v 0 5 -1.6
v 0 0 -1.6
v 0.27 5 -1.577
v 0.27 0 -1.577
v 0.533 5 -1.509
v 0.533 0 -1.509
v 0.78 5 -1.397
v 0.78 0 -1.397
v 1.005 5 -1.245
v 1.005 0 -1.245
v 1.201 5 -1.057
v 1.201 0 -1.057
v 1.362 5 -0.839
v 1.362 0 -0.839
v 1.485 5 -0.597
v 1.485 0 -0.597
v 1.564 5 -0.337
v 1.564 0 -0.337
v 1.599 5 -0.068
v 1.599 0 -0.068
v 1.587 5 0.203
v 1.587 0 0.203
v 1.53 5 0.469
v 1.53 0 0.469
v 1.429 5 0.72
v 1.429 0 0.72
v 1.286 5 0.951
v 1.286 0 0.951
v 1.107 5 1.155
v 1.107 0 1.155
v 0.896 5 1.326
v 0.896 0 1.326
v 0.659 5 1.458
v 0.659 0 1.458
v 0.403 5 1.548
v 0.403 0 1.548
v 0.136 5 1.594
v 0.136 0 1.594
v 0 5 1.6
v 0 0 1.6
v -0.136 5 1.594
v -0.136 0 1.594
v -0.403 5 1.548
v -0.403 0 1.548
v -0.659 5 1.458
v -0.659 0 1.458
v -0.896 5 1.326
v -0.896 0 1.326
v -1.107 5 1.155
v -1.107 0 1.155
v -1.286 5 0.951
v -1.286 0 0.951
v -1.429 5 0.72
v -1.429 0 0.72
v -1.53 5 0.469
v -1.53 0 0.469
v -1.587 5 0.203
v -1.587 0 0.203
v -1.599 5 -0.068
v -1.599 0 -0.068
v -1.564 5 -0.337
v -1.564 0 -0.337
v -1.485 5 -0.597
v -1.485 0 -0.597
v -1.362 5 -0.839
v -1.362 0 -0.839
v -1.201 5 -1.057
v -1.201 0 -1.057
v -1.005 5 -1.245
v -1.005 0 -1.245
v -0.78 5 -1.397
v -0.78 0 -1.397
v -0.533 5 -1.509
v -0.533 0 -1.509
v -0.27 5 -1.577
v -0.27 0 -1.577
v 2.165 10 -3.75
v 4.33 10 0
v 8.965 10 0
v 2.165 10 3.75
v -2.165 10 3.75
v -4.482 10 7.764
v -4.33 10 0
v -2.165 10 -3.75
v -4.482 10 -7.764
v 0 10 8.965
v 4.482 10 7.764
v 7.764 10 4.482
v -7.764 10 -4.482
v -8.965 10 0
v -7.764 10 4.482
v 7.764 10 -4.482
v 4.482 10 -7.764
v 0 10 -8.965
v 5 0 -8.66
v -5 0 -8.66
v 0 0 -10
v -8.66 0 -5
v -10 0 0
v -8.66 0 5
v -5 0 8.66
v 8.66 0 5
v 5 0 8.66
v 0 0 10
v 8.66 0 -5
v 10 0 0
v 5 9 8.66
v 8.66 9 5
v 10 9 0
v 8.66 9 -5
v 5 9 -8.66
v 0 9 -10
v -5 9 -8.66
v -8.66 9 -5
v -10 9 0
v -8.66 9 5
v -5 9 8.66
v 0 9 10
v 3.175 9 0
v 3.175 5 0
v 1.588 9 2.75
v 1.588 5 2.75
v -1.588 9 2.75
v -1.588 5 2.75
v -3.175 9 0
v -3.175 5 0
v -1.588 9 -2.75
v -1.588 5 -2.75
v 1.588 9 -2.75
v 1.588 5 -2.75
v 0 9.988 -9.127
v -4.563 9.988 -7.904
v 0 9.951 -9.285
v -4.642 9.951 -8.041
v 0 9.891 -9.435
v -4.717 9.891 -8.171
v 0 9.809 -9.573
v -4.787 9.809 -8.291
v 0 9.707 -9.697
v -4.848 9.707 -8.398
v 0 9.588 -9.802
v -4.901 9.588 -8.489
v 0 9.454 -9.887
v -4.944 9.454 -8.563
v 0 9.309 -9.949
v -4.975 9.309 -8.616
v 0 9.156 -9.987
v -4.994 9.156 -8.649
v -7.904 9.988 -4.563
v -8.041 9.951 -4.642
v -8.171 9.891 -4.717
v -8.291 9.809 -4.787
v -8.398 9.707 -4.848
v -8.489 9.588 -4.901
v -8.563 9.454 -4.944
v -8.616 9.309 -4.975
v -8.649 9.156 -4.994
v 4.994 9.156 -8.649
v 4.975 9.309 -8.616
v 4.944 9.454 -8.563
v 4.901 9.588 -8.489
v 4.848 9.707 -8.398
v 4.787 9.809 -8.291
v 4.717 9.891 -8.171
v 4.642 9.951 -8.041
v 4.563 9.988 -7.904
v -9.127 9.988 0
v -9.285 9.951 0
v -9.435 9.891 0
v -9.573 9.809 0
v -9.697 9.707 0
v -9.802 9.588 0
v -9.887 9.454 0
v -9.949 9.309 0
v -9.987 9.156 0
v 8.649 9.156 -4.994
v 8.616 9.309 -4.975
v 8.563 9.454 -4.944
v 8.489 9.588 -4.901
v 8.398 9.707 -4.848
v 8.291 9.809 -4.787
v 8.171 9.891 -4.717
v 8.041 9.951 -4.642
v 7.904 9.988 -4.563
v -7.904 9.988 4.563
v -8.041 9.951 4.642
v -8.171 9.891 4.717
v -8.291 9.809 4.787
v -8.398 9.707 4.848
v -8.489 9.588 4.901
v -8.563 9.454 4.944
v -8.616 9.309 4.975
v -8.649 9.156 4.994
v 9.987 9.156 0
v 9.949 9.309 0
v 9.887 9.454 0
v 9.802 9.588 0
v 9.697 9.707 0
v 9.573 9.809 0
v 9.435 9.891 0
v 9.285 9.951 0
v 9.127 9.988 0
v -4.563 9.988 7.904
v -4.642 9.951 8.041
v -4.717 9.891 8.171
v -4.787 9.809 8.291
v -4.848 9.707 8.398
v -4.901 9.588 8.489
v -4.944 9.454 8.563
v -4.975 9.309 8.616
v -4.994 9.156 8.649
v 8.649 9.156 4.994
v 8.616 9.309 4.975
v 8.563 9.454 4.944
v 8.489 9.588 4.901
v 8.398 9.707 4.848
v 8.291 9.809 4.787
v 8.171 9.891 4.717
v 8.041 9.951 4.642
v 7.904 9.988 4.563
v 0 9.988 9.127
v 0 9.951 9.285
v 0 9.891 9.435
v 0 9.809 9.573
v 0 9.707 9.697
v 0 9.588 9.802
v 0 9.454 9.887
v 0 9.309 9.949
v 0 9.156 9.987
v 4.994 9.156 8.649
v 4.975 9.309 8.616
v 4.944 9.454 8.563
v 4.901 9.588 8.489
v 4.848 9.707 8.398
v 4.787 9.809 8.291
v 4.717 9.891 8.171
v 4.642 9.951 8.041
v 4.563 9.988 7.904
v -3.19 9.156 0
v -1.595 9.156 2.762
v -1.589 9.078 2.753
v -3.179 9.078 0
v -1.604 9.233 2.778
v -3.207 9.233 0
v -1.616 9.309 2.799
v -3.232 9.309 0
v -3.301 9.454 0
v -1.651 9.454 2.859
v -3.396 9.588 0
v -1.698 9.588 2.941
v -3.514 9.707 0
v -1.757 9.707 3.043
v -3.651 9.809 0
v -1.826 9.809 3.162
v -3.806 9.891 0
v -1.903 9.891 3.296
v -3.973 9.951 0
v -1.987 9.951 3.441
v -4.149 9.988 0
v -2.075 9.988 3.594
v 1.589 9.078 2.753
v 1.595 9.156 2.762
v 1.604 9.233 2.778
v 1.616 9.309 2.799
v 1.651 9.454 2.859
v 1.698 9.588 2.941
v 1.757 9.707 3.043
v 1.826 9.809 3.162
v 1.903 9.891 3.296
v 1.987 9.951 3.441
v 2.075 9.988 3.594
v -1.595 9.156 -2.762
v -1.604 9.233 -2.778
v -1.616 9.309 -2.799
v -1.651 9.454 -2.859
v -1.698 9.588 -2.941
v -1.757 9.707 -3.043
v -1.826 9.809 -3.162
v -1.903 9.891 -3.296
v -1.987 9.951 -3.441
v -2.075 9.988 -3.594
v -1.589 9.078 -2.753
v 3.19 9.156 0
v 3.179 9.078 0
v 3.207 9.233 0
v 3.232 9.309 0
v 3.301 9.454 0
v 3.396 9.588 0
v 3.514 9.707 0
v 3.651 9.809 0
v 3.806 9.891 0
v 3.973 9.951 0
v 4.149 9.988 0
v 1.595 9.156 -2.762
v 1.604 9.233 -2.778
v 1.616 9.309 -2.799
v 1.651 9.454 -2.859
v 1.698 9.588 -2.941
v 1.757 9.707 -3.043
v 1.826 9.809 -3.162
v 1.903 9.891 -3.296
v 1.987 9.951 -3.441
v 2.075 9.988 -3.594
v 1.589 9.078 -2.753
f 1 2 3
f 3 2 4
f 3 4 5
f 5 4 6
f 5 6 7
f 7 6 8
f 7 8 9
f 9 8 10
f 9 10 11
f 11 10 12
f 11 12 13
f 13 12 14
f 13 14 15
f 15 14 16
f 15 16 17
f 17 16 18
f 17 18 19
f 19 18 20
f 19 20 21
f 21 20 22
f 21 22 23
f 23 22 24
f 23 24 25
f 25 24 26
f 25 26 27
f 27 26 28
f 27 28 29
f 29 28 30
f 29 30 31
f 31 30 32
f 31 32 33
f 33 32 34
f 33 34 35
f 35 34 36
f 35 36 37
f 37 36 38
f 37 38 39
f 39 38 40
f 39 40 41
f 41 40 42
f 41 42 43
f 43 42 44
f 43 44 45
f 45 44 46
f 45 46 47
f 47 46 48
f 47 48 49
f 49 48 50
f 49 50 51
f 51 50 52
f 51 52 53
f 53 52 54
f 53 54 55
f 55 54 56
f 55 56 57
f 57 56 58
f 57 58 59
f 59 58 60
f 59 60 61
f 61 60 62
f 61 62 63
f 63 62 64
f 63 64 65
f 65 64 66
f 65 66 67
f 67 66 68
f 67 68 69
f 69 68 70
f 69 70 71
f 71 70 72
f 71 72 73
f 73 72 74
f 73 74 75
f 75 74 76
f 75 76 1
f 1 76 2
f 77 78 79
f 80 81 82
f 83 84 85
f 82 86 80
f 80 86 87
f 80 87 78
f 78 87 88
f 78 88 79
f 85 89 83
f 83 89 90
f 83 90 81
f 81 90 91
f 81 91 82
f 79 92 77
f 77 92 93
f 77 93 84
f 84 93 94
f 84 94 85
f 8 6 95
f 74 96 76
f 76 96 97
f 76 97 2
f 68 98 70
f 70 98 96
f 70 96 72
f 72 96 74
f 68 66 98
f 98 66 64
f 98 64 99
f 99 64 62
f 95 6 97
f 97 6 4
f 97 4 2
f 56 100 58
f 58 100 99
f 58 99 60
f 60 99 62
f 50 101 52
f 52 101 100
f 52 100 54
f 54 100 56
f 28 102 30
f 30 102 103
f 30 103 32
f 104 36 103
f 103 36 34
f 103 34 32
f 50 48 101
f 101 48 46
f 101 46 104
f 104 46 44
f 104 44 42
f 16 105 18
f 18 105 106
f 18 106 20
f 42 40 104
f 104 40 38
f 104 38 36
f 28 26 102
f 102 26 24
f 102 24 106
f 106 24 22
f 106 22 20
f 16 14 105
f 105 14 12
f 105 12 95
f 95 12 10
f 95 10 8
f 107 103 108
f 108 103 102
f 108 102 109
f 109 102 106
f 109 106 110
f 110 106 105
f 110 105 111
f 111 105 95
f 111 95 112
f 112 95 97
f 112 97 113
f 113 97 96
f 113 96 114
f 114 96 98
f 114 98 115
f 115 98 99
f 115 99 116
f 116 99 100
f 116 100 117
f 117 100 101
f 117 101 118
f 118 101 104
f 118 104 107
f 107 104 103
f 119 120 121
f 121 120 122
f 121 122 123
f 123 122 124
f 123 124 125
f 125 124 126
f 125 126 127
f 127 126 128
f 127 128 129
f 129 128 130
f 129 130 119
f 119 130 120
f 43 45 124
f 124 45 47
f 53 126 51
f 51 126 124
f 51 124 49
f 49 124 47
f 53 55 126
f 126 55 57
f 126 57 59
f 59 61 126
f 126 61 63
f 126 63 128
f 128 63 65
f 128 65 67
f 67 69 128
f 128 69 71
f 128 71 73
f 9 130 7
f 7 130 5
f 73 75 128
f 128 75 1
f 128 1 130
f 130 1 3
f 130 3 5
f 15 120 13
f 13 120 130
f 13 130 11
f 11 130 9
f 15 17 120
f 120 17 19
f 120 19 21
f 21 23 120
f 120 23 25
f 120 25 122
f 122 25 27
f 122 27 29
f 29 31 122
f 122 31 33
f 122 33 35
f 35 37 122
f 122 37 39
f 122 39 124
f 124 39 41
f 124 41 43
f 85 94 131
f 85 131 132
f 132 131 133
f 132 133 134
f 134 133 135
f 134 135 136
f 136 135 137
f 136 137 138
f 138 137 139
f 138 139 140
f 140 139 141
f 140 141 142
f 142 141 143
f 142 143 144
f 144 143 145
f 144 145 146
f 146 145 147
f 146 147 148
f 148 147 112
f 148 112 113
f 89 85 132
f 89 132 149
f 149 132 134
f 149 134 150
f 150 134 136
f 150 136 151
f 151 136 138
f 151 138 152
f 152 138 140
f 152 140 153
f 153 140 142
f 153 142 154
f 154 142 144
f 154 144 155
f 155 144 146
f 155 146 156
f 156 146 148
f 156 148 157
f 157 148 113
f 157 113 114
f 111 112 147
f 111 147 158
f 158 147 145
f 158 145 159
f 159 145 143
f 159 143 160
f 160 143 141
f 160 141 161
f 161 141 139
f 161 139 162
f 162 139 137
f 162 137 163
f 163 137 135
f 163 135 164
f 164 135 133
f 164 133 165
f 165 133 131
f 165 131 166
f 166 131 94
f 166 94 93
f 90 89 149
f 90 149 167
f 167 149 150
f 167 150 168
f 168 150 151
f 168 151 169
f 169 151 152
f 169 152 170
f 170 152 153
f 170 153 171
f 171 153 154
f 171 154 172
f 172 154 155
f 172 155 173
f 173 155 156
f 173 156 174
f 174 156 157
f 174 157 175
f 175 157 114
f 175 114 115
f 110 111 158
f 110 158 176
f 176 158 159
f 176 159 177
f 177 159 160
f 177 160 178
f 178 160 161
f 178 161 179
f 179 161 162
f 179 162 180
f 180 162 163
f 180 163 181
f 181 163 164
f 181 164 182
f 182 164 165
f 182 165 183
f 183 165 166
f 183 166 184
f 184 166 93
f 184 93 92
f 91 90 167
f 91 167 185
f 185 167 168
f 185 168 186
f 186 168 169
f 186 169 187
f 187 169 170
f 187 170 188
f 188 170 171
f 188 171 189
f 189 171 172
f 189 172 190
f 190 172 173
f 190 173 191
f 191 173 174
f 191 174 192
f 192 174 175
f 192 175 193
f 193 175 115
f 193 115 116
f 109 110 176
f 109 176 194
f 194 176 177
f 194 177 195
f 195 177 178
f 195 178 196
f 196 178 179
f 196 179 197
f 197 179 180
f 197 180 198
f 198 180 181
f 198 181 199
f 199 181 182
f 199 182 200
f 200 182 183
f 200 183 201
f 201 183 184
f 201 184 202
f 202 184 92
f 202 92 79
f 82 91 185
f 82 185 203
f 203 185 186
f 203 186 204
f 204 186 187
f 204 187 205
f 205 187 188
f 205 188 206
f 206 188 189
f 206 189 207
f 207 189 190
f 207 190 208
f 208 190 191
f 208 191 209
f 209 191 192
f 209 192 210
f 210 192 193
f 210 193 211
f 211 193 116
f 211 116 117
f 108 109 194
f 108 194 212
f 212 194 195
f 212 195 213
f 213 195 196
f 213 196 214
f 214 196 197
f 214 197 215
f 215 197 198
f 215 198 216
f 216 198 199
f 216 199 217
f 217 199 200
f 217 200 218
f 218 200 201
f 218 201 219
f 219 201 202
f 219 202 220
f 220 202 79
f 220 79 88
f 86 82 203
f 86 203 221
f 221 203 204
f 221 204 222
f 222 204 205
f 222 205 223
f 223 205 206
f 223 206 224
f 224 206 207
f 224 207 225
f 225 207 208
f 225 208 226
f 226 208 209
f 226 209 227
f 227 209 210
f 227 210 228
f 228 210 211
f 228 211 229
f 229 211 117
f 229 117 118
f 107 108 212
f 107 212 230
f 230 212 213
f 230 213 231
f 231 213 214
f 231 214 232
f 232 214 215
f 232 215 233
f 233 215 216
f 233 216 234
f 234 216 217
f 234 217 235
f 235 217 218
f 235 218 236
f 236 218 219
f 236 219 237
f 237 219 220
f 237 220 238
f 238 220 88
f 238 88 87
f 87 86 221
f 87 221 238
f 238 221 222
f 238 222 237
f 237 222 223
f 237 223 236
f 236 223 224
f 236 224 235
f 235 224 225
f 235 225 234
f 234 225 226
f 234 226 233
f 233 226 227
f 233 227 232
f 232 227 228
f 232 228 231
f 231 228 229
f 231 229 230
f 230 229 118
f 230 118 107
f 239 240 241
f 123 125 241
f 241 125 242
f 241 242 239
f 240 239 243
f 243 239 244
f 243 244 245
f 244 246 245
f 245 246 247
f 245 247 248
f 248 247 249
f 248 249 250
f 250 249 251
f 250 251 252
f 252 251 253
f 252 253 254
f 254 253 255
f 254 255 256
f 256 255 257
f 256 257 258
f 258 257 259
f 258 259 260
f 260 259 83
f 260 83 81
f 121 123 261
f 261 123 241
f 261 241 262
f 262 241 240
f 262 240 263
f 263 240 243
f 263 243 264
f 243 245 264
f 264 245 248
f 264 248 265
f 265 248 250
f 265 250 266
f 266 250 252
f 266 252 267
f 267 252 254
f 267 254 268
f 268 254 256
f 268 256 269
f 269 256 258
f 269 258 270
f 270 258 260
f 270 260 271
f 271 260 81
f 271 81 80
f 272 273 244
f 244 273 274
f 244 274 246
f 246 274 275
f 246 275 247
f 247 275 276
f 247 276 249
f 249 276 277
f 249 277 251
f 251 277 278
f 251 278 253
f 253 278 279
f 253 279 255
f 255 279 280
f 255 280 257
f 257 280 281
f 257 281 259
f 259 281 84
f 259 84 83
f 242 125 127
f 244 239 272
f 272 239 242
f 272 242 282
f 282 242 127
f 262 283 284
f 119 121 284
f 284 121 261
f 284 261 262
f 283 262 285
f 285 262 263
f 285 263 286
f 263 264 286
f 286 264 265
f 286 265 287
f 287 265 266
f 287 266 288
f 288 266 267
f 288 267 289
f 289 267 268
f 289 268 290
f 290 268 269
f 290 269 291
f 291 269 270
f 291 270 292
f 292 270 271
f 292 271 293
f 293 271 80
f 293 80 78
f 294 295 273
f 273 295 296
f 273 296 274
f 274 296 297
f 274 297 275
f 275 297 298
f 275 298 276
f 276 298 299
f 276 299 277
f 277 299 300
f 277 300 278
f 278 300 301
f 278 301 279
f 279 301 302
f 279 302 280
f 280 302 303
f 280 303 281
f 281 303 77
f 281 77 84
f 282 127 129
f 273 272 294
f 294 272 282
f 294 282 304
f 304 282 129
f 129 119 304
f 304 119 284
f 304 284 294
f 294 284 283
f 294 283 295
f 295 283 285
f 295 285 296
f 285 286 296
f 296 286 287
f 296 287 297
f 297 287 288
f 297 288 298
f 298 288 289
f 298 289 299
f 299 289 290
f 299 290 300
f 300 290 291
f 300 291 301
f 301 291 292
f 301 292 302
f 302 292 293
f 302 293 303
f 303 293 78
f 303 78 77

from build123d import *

# Parameters (mm, degrees)
SKETCH1_R           = 1.6
BOSS_EXTRUDE1_DEPTH = 10
CUT_EXTRUDE1_DEPTH  = 5
FILLET1_R           = 1


with BuildPart() as part:
    # Sketch1 → Boss-Extrude1 (new body)
    with BuildSketch(Plane(origin=(0, 0, 0), x_dir=(1, 0, 0), z_dir=(0, 1, 0))):
        Polygon((-10, 0), (-8.660254038, -5), (-5, -8.660254038), (0, -10), (5, -8.660254038), (8.660254038, -5), (10, 0), (8.660254038, 5), (5, 8.660254038), (0, 10), (-5, 8.660254038), (-8.660254038, 5), align=None)
        with Locations(Location((0, 0, 0), (0, 0, 270))):
            Circle(SKETCH1_R, mode=Mode.SUBTRACT)
    extrude(amount=BOSS_EXTRUDE1_DEPTH)

    # Sketch2 → Cut-Extrude1 (cut)
    with BuildSketch(Plane(origin=(0, 10, 0), x_dir=(1, 0, 0), z_dir=(0, 1, 0))):
        Polygon((3.175426481, 0), (1.58771324, 2.75), (-1.58771324, 2.75), (-3.175426481, 0), (-1.58771324, -2.75), (1.58771324, -2.75), align=None)
    extrude(amount=-CUT_EXTRUDE1_DEPTH, mode=Mode.SUBTRACT)

    # Fillet1
    fillet1_edges = [part.edges().sort_by_distance(p)[0] for p in [
        (9.330127019, 10, -2.5),
        (6.830127019, 10, -6.830127019),
        (2.5, 10, -9.330127019),
        (-2.5, 10, -9.330127019),
        (-6.830127019, 10, -6.830127019),
        (-9.330127019, 10, -2.5),
        (-9.330127019, 10, 2.5),
        (-6.830127019, 10, 6.830127019),
        (-2.5, 10, 9.330127019),
        (2.38156986, 10, 1.375),
        (2.38156986, 10, -1.375),
        (0, 10, -2.75),
        (-2.38156986, 10, -1.375),
        (-2.38156986, 10, 1.375),
        (0, 10, 2.75),
        (2.5, 10, 9.330127019),
        (6.830127019, 10, 6.830127019),
        (9.330127019, 10, 2.5),
    ]]
    fillet(fillet1_edges, radius=FILLET1_R)


solid = part.part
